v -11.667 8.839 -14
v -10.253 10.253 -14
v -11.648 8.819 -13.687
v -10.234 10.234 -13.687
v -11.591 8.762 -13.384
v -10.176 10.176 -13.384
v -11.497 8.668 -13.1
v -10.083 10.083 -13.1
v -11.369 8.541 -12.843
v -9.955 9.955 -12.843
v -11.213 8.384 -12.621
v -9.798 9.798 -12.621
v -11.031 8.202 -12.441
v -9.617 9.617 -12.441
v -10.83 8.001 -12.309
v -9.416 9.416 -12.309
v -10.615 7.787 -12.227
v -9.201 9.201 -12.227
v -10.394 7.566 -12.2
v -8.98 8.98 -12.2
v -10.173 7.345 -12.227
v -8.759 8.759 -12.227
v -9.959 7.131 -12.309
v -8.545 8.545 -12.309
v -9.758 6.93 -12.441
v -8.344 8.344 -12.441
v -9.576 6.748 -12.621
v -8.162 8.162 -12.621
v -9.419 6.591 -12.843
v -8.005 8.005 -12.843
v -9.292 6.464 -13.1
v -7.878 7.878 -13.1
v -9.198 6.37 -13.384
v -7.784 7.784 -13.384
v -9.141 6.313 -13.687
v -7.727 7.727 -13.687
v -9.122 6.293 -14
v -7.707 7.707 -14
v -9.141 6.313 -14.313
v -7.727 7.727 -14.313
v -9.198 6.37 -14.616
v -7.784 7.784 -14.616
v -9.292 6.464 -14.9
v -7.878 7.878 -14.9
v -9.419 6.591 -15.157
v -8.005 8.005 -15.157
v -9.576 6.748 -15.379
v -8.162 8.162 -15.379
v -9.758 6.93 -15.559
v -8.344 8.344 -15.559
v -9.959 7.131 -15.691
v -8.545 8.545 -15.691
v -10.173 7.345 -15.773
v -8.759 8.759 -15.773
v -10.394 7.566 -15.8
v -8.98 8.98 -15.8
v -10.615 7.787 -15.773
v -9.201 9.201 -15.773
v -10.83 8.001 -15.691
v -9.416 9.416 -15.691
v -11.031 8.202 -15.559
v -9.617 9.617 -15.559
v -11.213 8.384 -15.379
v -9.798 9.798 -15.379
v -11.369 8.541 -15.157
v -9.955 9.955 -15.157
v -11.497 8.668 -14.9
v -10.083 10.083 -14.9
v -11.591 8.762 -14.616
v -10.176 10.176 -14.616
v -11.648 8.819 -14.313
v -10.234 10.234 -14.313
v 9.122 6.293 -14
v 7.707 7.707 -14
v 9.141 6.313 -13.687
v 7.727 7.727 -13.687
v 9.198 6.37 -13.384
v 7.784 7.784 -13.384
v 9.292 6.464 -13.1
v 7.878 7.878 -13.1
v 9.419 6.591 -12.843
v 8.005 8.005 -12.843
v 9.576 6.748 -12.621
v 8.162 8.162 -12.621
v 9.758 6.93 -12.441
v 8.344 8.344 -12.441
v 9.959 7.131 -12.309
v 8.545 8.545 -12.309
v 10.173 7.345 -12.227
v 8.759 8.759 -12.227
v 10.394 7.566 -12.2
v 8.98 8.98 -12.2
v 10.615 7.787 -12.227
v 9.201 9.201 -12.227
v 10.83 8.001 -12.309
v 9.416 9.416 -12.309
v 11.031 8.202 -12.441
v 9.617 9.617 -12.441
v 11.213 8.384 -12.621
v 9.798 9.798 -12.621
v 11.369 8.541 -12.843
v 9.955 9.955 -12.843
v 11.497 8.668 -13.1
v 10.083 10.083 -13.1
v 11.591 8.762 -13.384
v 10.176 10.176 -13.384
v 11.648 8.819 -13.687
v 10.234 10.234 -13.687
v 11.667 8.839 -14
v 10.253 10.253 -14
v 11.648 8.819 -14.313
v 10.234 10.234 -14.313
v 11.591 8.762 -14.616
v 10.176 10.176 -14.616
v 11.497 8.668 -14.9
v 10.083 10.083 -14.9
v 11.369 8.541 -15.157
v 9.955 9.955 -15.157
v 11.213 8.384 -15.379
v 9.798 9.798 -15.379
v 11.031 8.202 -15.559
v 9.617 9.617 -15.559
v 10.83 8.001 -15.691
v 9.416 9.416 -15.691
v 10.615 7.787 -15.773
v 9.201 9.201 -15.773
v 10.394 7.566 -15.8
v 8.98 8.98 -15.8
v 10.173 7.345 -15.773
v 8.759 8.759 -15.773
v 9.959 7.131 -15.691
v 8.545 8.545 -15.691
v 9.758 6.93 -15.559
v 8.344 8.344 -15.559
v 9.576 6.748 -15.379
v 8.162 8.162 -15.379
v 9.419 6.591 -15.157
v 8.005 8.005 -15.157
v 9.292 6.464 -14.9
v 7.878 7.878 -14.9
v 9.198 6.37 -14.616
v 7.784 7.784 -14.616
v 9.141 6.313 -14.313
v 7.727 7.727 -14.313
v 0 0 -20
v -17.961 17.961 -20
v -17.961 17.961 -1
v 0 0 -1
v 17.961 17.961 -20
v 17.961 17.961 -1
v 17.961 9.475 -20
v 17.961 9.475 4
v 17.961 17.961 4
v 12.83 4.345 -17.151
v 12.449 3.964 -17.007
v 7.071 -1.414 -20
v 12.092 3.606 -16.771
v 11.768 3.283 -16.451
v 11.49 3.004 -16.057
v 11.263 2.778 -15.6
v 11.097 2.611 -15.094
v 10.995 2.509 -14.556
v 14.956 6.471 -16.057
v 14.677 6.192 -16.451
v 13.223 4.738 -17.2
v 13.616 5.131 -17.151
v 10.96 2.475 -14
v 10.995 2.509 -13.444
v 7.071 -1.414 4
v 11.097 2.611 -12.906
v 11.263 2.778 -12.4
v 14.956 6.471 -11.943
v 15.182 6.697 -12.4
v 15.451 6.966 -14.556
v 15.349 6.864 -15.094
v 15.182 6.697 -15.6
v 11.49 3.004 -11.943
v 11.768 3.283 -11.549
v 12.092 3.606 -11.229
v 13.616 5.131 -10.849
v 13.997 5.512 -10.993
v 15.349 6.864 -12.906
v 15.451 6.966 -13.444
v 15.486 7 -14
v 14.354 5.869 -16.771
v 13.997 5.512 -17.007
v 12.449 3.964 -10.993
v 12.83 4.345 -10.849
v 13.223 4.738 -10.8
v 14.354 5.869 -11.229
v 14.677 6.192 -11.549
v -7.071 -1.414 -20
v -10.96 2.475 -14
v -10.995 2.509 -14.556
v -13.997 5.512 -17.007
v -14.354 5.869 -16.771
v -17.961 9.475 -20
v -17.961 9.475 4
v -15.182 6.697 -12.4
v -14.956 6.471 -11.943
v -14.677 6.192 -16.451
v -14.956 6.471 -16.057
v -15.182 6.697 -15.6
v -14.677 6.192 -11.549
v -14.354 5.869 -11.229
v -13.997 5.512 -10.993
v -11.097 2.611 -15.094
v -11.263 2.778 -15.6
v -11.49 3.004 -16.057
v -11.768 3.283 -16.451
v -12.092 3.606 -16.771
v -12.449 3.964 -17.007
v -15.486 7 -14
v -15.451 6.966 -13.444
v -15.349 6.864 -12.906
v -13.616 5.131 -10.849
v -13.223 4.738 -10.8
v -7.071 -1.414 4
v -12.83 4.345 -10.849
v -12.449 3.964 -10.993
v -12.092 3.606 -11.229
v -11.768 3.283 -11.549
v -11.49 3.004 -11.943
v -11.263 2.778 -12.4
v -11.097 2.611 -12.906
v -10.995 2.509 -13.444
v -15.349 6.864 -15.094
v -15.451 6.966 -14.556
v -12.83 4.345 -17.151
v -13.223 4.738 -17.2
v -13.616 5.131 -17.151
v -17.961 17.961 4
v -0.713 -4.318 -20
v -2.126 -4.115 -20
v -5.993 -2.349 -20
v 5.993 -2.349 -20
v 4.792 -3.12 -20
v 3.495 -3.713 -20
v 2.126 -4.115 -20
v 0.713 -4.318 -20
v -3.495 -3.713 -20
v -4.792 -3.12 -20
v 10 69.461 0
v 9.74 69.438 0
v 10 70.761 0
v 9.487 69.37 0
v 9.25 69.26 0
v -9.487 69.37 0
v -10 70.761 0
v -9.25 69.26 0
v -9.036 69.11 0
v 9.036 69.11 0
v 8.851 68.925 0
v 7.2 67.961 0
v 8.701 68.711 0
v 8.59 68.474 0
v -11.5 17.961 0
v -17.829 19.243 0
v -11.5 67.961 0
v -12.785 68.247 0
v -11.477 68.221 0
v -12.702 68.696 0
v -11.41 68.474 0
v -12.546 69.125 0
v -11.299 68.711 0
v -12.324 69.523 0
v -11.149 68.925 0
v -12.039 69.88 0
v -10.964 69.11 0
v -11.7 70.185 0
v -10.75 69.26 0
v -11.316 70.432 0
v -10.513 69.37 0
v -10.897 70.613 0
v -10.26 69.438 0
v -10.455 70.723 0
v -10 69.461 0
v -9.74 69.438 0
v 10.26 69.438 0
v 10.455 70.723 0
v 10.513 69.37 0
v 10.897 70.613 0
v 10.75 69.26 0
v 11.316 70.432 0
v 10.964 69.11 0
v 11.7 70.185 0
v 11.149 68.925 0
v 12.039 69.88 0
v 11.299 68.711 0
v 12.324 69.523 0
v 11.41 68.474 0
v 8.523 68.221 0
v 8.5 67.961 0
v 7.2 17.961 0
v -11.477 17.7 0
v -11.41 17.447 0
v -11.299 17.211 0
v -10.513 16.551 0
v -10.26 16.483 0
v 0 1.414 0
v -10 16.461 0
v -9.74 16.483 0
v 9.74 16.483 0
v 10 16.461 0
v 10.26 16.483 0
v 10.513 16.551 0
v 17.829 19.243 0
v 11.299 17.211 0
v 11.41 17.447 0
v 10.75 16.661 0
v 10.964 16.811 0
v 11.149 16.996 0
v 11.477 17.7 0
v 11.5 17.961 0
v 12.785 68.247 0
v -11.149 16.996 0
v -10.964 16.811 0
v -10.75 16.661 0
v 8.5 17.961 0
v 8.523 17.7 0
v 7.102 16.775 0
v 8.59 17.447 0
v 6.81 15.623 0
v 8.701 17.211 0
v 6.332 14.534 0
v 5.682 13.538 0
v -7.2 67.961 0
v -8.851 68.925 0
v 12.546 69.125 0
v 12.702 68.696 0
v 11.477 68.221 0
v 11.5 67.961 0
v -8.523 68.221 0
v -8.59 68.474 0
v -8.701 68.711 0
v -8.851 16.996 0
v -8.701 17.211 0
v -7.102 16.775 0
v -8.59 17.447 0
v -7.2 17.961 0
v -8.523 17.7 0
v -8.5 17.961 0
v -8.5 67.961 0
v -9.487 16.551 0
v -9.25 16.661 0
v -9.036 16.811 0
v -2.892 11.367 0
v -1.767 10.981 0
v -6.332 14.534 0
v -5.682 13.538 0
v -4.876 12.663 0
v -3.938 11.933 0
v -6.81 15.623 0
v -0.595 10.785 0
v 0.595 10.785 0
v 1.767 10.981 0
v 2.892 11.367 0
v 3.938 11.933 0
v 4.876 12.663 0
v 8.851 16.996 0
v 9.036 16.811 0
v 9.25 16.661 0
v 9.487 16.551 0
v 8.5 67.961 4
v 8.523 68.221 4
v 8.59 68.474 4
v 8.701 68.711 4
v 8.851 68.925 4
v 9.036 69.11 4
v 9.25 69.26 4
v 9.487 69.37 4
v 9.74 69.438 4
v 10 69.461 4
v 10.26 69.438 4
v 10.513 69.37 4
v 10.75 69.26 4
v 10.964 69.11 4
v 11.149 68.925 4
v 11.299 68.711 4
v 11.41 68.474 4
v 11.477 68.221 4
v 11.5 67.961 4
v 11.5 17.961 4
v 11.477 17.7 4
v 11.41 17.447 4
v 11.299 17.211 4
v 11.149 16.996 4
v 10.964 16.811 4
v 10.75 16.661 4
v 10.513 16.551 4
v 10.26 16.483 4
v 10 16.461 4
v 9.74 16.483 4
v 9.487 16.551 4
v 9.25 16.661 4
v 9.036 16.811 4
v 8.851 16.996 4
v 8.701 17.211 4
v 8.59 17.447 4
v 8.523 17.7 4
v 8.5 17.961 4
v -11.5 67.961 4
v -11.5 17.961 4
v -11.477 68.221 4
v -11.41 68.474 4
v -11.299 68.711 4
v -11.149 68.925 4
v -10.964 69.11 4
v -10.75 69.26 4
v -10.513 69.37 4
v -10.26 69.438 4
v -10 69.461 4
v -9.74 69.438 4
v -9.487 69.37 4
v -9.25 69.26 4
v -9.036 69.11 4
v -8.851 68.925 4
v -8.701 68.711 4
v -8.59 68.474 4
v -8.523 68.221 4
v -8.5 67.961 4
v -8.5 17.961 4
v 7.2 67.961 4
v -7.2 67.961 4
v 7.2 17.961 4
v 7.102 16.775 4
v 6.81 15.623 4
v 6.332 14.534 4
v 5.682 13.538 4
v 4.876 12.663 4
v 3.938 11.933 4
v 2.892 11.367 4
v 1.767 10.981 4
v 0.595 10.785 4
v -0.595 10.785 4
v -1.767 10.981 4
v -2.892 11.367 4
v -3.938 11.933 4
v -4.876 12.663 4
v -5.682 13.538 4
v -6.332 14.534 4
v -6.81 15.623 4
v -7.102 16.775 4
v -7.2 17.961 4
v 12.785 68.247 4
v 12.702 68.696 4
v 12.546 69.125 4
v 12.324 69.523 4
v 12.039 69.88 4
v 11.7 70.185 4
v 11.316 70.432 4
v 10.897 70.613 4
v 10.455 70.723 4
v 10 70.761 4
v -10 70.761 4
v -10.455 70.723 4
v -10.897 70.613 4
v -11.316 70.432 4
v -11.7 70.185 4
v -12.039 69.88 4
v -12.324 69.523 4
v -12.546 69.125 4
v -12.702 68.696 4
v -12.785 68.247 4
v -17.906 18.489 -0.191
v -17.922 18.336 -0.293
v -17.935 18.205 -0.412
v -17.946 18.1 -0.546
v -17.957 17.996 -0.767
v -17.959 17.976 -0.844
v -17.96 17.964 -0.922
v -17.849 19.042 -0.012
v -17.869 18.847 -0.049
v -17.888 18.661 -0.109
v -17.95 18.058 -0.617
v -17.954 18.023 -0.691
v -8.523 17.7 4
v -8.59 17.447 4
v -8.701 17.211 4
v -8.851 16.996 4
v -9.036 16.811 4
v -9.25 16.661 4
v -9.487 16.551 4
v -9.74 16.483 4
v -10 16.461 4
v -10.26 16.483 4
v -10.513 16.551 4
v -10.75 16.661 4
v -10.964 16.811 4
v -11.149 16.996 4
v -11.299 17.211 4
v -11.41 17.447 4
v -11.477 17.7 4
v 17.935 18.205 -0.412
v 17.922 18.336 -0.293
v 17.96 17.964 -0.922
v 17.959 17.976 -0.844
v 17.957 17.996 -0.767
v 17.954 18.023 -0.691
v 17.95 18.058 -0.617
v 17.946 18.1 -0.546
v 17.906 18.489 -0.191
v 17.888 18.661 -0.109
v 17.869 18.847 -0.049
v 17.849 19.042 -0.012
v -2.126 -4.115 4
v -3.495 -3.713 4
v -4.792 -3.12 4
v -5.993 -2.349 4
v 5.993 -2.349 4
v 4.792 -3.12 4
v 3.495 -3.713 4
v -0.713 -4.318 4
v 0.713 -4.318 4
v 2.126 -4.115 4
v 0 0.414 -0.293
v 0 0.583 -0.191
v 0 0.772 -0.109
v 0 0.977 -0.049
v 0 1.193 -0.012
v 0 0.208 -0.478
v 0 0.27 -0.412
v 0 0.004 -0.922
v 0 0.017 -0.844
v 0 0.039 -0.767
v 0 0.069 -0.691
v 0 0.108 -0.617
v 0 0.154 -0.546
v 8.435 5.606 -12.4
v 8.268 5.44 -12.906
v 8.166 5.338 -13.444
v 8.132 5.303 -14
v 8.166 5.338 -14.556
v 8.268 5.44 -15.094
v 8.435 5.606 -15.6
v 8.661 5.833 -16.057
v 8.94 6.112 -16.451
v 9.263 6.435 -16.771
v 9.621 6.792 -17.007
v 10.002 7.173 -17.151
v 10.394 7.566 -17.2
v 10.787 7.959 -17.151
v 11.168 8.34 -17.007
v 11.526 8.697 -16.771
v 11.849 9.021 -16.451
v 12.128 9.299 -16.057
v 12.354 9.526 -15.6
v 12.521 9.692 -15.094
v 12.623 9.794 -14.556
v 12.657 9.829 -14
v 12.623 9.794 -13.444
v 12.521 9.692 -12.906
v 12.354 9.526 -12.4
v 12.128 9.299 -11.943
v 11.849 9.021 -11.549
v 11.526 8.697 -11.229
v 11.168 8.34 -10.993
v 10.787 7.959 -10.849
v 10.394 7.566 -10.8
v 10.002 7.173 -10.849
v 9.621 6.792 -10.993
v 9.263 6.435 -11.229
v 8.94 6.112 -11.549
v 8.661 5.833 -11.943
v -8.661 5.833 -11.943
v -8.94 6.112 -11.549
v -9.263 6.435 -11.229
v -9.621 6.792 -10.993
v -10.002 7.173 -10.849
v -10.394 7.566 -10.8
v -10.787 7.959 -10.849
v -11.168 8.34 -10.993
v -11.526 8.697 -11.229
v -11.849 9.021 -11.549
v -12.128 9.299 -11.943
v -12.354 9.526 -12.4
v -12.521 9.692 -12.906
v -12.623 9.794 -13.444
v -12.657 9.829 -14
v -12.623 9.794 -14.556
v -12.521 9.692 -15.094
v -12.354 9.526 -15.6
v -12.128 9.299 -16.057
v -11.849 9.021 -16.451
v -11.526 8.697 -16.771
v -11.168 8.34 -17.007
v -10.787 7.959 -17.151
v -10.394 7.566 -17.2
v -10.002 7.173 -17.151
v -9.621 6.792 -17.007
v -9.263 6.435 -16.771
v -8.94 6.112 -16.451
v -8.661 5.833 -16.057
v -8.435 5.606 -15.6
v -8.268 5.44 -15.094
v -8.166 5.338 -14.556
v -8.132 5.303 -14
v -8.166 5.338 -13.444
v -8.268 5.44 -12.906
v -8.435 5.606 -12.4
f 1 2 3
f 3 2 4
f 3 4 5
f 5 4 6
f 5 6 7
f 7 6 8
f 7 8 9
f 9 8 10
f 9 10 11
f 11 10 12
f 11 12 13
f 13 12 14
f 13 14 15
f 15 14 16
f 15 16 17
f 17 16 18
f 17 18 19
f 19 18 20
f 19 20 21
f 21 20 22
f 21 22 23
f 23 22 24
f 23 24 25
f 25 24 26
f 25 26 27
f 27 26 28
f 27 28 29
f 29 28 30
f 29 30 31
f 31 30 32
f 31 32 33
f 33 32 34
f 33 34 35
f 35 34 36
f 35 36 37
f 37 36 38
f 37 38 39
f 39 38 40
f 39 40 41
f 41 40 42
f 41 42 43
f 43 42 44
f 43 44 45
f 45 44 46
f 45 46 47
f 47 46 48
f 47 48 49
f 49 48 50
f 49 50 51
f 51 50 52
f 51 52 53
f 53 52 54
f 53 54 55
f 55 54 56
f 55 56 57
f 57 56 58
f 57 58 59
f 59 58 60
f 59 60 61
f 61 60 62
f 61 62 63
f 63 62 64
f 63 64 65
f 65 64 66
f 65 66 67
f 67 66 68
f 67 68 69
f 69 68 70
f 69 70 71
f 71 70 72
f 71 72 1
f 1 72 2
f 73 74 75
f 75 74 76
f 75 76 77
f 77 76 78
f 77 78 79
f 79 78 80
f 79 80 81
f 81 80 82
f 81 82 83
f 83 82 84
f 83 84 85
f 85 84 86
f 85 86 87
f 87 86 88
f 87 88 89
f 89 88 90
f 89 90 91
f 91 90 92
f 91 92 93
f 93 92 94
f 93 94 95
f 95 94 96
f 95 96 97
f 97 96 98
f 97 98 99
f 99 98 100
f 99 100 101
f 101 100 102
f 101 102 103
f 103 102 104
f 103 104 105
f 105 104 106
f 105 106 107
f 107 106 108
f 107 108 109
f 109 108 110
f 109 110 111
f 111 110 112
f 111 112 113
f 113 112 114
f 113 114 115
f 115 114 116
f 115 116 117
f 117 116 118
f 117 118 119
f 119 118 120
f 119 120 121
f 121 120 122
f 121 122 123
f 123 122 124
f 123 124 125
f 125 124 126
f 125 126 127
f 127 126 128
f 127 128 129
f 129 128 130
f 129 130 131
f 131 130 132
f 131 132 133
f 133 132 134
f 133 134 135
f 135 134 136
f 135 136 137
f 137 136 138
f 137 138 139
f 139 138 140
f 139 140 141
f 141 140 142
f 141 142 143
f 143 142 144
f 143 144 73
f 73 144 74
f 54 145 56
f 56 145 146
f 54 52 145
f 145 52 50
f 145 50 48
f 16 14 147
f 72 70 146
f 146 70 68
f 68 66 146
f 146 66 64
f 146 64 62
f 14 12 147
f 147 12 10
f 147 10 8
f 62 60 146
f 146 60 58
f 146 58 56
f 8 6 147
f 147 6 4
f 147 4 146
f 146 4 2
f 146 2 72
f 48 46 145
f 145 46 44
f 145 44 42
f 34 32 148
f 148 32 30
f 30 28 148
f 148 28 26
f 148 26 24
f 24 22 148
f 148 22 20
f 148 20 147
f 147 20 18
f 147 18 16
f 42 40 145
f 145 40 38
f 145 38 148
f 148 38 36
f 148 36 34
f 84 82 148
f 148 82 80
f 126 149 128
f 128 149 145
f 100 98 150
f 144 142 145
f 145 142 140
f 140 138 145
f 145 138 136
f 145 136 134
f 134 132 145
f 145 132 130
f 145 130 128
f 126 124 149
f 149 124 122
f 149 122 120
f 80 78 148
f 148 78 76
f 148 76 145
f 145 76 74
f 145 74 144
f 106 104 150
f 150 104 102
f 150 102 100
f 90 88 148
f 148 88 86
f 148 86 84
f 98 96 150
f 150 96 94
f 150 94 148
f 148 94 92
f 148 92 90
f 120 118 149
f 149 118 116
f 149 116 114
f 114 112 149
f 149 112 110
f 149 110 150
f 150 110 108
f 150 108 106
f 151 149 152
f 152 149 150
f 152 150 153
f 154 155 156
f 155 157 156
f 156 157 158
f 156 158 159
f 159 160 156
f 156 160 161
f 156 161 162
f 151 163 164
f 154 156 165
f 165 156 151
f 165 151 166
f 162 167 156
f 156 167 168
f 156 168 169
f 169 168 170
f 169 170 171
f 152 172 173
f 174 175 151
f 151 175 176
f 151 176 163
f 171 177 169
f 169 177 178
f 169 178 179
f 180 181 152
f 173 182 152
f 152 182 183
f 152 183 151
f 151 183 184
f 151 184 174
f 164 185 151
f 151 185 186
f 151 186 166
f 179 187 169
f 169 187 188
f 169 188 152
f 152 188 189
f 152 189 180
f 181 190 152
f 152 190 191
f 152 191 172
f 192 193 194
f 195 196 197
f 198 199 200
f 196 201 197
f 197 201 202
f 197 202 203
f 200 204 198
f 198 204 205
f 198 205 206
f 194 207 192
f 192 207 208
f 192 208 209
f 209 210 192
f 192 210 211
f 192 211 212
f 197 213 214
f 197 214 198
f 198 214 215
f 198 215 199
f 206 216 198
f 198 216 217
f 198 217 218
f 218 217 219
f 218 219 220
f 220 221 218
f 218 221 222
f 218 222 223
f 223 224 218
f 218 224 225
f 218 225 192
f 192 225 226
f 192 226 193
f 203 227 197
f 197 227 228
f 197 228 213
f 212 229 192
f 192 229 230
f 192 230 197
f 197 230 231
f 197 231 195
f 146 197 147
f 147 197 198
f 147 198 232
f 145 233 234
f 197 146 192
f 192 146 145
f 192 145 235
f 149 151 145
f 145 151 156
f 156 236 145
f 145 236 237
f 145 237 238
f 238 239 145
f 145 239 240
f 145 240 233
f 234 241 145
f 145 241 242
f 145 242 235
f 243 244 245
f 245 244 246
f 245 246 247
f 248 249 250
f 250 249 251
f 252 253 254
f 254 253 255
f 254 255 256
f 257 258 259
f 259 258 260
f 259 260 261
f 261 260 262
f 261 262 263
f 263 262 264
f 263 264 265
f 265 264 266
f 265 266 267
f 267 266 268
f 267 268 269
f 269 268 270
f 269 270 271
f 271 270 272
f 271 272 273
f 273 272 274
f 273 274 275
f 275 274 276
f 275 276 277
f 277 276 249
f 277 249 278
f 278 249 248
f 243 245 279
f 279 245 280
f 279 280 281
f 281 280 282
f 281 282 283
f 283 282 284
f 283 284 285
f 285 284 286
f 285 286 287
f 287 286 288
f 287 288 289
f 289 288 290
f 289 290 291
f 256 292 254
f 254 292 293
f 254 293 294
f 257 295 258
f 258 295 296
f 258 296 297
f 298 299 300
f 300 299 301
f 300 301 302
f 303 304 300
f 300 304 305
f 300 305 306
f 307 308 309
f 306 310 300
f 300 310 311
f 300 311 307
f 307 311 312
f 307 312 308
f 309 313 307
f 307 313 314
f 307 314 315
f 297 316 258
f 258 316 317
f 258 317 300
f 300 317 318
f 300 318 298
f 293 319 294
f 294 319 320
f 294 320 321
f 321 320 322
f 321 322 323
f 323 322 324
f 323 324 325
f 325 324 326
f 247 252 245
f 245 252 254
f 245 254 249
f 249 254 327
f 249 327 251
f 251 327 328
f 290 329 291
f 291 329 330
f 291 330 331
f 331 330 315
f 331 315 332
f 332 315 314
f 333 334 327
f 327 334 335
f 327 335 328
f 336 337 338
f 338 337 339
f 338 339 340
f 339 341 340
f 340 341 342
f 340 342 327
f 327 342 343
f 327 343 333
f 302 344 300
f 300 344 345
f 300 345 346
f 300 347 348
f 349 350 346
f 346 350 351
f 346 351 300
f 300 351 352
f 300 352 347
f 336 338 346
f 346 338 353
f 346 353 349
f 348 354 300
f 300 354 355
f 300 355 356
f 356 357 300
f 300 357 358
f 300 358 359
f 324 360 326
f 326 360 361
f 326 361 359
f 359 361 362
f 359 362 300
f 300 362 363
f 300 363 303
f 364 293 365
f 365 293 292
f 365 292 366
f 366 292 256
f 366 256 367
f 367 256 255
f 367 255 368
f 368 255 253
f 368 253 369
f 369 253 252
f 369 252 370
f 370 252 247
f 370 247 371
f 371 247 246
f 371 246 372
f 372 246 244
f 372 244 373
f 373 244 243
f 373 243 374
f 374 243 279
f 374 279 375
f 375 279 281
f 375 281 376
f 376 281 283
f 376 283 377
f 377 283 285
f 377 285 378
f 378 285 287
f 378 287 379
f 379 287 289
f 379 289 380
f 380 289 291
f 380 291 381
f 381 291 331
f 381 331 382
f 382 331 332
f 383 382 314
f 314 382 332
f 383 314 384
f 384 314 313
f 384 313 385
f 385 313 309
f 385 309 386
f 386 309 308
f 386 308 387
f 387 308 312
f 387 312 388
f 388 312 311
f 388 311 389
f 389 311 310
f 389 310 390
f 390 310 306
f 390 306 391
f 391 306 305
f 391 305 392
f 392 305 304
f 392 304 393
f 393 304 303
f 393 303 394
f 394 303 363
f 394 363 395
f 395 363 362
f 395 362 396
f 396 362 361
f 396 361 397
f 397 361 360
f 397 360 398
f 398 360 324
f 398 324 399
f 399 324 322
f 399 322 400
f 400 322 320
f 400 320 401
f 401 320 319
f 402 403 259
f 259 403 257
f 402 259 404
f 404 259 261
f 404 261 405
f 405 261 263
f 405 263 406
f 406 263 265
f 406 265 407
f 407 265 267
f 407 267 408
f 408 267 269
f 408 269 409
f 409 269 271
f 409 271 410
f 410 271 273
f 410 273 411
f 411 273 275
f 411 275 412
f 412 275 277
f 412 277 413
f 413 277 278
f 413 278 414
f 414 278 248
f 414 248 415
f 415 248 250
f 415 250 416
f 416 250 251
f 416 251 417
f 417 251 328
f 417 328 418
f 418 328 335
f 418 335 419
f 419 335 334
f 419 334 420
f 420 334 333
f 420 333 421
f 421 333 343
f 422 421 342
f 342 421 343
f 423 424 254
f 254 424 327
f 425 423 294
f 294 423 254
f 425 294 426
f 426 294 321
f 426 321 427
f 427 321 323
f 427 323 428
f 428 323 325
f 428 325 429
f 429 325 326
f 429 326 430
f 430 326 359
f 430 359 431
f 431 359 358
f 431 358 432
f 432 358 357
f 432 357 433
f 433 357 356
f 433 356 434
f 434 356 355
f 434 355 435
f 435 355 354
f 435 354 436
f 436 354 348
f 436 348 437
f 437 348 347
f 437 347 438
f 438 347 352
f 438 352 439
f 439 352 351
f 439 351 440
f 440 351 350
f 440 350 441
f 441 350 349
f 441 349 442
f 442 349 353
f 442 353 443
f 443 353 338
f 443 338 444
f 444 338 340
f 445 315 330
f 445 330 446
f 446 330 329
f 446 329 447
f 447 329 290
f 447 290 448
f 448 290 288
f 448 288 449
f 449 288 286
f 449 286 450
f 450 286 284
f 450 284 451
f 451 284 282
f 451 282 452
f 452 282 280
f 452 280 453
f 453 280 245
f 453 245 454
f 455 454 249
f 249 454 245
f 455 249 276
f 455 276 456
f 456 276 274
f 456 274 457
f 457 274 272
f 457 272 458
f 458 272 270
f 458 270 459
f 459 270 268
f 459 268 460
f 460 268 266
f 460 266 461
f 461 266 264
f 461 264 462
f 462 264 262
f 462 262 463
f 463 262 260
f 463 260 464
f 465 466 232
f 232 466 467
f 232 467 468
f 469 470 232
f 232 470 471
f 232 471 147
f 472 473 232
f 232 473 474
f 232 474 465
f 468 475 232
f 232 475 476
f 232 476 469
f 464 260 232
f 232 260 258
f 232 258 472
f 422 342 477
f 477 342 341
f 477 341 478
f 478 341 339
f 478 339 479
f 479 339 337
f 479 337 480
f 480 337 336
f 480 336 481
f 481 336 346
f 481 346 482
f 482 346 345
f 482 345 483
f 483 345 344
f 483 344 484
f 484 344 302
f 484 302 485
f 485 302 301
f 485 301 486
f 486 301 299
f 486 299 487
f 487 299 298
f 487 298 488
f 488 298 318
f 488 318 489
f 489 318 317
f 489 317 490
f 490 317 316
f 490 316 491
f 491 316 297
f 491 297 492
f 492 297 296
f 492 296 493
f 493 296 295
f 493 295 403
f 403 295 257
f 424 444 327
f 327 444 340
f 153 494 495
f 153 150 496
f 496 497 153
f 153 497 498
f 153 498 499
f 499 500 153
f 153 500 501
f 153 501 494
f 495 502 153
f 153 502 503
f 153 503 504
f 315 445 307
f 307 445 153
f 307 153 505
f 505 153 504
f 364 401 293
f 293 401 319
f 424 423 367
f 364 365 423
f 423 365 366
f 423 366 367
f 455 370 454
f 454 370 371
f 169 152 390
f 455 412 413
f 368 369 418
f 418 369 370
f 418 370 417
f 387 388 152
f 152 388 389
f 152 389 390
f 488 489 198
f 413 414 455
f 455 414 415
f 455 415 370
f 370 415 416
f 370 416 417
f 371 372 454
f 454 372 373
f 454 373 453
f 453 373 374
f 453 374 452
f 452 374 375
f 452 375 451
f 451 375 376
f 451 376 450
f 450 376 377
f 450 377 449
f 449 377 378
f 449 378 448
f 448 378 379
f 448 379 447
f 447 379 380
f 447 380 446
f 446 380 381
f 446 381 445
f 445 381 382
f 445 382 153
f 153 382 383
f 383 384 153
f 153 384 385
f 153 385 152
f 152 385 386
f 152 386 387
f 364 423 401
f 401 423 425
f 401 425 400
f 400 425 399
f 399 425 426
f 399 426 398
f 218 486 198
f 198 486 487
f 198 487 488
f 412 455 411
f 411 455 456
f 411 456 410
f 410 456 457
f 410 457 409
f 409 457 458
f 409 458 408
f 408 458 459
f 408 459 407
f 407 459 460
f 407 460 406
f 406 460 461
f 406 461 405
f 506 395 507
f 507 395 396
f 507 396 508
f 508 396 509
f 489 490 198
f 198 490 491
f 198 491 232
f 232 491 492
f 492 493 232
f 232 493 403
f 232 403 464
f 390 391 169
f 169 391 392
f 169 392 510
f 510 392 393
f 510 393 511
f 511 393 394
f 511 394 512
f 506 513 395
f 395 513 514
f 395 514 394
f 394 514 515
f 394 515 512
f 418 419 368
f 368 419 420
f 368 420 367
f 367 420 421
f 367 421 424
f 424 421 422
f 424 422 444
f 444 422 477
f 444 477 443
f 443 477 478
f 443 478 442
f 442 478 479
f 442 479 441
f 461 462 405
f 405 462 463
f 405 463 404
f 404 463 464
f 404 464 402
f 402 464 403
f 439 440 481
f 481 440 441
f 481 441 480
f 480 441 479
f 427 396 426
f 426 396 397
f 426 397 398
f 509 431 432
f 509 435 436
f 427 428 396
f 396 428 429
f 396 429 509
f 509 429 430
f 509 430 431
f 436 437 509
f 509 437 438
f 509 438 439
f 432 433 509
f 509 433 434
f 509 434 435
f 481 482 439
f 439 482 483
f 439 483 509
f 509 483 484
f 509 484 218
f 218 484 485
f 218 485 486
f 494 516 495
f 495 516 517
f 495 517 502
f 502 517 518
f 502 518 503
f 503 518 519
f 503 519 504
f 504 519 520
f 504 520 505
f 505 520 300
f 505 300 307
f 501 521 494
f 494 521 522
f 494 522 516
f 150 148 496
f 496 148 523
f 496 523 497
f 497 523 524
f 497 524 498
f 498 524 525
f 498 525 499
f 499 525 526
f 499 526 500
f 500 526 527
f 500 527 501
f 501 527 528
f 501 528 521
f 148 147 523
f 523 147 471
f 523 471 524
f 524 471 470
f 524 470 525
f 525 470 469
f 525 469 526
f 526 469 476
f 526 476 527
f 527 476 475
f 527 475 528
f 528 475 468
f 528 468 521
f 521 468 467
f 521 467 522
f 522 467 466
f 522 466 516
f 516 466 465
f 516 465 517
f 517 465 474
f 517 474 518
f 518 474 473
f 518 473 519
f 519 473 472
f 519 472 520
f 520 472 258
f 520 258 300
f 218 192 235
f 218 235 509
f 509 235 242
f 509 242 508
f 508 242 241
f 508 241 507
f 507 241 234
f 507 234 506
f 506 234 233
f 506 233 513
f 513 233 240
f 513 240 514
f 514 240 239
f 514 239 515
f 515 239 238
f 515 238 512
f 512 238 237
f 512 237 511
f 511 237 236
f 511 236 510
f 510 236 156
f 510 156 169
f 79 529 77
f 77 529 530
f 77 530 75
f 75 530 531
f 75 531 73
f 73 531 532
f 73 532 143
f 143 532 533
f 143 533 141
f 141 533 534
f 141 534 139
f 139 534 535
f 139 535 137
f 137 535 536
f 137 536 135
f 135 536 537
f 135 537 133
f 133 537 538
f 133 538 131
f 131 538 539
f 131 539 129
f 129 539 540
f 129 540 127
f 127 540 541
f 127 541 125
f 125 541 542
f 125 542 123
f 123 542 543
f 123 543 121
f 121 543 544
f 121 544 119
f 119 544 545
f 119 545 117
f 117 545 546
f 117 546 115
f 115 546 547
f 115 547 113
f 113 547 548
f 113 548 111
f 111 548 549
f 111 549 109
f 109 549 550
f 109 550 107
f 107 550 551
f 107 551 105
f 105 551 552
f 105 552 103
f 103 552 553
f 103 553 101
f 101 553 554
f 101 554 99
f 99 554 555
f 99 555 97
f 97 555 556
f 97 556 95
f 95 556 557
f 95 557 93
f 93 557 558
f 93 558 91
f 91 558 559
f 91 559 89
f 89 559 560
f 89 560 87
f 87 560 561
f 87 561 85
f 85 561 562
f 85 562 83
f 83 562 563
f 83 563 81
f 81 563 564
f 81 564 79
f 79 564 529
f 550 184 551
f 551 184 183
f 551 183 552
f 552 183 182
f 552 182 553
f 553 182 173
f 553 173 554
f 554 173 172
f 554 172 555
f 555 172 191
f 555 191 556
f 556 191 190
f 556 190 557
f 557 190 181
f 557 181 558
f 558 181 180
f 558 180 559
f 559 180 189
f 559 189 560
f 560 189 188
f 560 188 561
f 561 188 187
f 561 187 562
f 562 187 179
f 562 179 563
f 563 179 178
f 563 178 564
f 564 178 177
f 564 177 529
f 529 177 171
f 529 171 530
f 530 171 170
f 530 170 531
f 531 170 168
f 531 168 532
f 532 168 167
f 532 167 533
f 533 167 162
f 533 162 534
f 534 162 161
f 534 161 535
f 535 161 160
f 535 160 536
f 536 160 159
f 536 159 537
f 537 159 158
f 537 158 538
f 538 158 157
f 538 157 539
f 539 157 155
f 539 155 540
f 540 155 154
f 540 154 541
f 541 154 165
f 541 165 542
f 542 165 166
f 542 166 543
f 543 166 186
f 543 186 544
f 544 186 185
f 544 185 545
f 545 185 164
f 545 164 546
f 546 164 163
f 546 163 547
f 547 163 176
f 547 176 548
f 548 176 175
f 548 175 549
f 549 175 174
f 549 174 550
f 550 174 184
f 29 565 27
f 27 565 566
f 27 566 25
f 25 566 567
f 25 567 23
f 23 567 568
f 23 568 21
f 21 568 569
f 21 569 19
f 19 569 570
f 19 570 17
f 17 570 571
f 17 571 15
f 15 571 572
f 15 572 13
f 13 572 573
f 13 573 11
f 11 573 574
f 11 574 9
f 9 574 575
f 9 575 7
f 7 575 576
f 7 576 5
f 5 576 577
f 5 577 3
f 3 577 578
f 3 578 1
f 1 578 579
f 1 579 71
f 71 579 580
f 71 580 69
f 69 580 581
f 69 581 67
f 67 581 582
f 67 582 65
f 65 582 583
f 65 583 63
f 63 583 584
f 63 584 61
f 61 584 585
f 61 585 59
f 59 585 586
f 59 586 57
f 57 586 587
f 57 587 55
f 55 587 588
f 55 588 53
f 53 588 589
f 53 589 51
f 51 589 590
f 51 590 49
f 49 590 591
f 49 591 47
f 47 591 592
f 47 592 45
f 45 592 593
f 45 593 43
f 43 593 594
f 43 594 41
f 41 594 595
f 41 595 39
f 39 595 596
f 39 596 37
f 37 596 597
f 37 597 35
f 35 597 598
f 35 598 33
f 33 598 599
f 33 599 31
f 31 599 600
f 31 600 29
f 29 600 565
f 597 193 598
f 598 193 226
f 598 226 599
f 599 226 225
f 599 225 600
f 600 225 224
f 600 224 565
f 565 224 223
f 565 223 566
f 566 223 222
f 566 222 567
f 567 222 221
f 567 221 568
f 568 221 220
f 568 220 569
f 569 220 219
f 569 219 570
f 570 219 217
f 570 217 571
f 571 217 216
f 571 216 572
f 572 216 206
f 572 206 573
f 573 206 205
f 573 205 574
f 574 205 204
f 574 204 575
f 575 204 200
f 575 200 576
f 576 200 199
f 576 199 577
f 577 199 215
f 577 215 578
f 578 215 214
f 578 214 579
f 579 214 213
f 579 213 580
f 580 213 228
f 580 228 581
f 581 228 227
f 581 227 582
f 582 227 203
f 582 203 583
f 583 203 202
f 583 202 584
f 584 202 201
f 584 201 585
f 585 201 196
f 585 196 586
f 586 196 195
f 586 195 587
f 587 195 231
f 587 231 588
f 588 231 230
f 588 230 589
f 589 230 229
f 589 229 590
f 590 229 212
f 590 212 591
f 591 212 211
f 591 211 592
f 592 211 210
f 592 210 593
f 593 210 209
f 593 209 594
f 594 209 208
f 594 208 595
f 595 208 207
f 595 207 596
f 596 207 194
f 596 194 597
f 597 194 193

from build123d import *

# Parameters (mm, degrees)
SALIENTE_EXTRUIR1_DEPTH = 20
SALIENTE_EXTRUIR2_DEPTH = 4
REDONDEO1_R             = 1
REDONDEO2_R             = 10
CROQUIS3_R              = 1.8
CORTAR_EXTRUIR1_DEPTH   = 6
CROQUIS4_R              = 1.8
CORTAR_EXTRUIR2_DEPTH   = 6
CROQUIS5_R              = 3.2
CORTAR_EXTRUIR3_DEPTH   = 4
CROQUIS6_R              = 3.2
CORTAR_EXTRUIR4_DEPTH   = 4


with BuildPart() as part:
    # Croquis2 → Saliente-Extruir1 (new body)
    with BuildSketch(Plane.XY):
        Polygon((0, 0), (-17.960512242, 17.960512242), (-17.960512242, 9.475230868), (0, -8.485281374), align=None)
        Polygon((0, -8.485281374), (0, 0), (17.960512242, 17.960512242), (17.960512242, 9.475230868), align=None)
    extrude(amount=-SALIENTE_EXTRUIR1_DEPTH)

    # Croquis2<3> → Saliente-Extruir2 (add)
    with BuildSketch(Plane.XY):
        Polygon((0, 0), (-17.960512242, 17.960512242), (-17.960512242, 9.475230868), (0, -8.485281374), align=None)
        with BuildLine():
            Line((-17.960512242, 17.960512242), (0, 0))
            Line((0, 0), (0, 10.760512242))
            ThreePointArc((0, 10.760512242), (-5.091168825, 12.869343418), (-7.2, 17.960512242))
            ThreePointArc((-7.2, 17.960512242), (-10, 15.160512242), (-12.8, 17.960512242))
            Line((-12.8, 17.960512242), (-12.8, 67.960512242))
            ThreePointArc((-12.8, 67.960512242), (-12.796319785, 68.104024126), (-12.785288814, 68.247158756))
            Line((-12.785288814, 68.247158756), (-17.960512242, 17.960512242))
        make_face()
        with BuildLine():
            Line((0, 10.760512242), (0, 0))
            Line((0, 0), (17.960512242, 17.960512242))
            Line((17.960512242, 17.960512242), (12.785288814, 68.247158756))
            ThreePointArc((12.785288814, 68.247158756), (12.796319785, 68.104024126), (12.8, 67.960512242))
            Line((12.8, 67.960512242), (12.8, 17.960512242))
            ThreePointArc((12.8, 17.960512242), (10, 15.160512242), (7.2, 17.960512242))
            ThreePointArc((7.2, 17.960512242), (5.091168825, 12.869343418), (0, 10.760512242))
        make_face()
        Polygon((0, -8.485281374), (0, 0), (17.960512242, 17.960512242), (17.960512242, 9.475230868), align=None)
        with BuildLine():
            Line((12.8, 67.960512242), (12.8, 17.960512242))
            ThreePointArc((12.8, 17.960512242), (10, 15.160512242), (7.2, 17.960512242))
            Line((7.2, 17.960512242), (7.2, 67.960512242))
            ThreePointArc((7.2, 67.960512242), (10, 70.760512242), (12.8, 67.960512242))
        make_face()
        with BuildLine():
            ThreePointArc((11.5, 67.960512242), (10, 69.460512242), (8.5, 67.960512242))
            Line((8.5, 67.960512242), (8.5, 17.960512242))
            ThreePointArc((8.5, 17.960512242), (10, 16.460512242), (11.5, 17.960512242))
            Line((11.5, 17.960512242), (11.5, 67.960512242))
        make_face(mode=Mode.SUBTRACT)
        with BuildLine():
            ThreePointArc((-12.8, 67.960512242), (-10, 70.760512242), (-7.2, 67.960512242))
            Line((-7.2, 67.960512242), (-7.2, 17.960512242))
            ThreePointArc((-7.2, 17.960512242), (-10, 15.160512242), (-12.8, 17.960512242))
            Line((-12.8, 17.960512242), (-12.8, 67.960512242))
        make_face()
        with BuildLine():
            Line((-11.5, 67.960512242), (-11.5, 17.960512242))
            ThreePointArc((-11.5, 17.960512242), (-10, 16.460512242), (-8.5, 17.960512242))
            Line((-8.5, 17.960512242), (-8.5, 67.960512242))
            ThreePointArc((-8.5, 67.960512242), (-10, 69.460512242), (-11.5, 67.960512242))
        make_face(mode=Mode.SUBTRACT)
        with BuildLine():
            ThreePointArc((-10, 70.760512242), (-8.020101013, 69.940411229), (-7.2, 67.960512242))
            Line((-7.2, 67.960512242), (0, 67.960512242))
            Line((0, 67.960512242), (0, 70.760512242))
            Line((0, 70.760512242), (-10, 70.760512242))
        make_face()
        with BuildLine():
            ThreePointArc((7.2, 67.960512242), (8.020101013, 69.940411229), (10, 70.760512242))
            Line((10, 70.760512242), (0, 70.760512242))
            Line((0, 70.760512242), (0, 67.960512242))
            Line((0, 67.960512242), (7.2, 67.960512242))
        make_face()
    extrude(amount=SALIENTE_EXTRUIR2_DEPTH)

    # Redondeo1
    redondeo1_edges = [part.edges().sort_by_distance(p)[0] for p in [
        (-8.980256121, 8.980256121, 0),
        (8.980256121, 8.980256121, 0),
    ]]
    fillet(redondeo1_edges, radius=REDONDEO1_R)

    # Redondeo2
    redondeo2_edges = [part.edges().sort_by_distance(p)[0] for p in [
        (0, -8.485281374, -8),
    ]]
    fillet(redondeo2_edges, radius=REDONDEO2_R)

    # Croquis3 → Cortar-Extruir1 (cut)
    with BuildSketch(Plane(origin=(0, 0, 0), x_dir=(0, 0, -1), z_dir=(0.707106781, 0.707106781, 0))):
        with Locations((14, 12.7)):
            Circle(CROQUIS3_R)
    extrude(amount=-CORTAR_EXTRUIR1_DEPTH, mode=Mode.SUBTRACT)

    # Croquis4 → Cortar-Extruir2 (cut)
    with BuildSketch(Plane(origin=(0, 0, 0), x_dir=(0, 0, 1), z_dir=(-0.707106781, 0.707106781, 0))):
        with Locations((-14, 12.7)):
            Circle(CROQUIS4_R)
    extrude(amount=-CORTAR_EXTRUIR2_DEPTH, mode=Mode.SUBTRACT)

    # Croquis5 → Cortar-Extruir3 (cut)
    with BuildSketch(Plane(origin=(4.242640687, -4.242640687, 0), x_dir=(0, 0, -1), z_dir=(0.707106781, -0.707106781, 0))):
        with Locations((14, 12.7)):
            Circle(CROQUIS5_R)
    extrude(amount=-CORTAR_EXTRUIR3_DEPTH, mode=Mode.SUBTRACT)

    # Croquis6 → Cortar-Extruir4 (cut)
    with BuildSketch(Plane(origin=(-4.242640687, -4.242640687, 0), x_dir=(0, 0, 1), z_dir=(-0.707106781, -0.707106781, 0))):
        with Locations((-14, 12.7)):
            Circle(CROQUIS6_R)
    extrude(amount=-CORTAR_EXTRUIR4_DEPTH, mode=Mode.SUBTRACT)


solid = part.part
